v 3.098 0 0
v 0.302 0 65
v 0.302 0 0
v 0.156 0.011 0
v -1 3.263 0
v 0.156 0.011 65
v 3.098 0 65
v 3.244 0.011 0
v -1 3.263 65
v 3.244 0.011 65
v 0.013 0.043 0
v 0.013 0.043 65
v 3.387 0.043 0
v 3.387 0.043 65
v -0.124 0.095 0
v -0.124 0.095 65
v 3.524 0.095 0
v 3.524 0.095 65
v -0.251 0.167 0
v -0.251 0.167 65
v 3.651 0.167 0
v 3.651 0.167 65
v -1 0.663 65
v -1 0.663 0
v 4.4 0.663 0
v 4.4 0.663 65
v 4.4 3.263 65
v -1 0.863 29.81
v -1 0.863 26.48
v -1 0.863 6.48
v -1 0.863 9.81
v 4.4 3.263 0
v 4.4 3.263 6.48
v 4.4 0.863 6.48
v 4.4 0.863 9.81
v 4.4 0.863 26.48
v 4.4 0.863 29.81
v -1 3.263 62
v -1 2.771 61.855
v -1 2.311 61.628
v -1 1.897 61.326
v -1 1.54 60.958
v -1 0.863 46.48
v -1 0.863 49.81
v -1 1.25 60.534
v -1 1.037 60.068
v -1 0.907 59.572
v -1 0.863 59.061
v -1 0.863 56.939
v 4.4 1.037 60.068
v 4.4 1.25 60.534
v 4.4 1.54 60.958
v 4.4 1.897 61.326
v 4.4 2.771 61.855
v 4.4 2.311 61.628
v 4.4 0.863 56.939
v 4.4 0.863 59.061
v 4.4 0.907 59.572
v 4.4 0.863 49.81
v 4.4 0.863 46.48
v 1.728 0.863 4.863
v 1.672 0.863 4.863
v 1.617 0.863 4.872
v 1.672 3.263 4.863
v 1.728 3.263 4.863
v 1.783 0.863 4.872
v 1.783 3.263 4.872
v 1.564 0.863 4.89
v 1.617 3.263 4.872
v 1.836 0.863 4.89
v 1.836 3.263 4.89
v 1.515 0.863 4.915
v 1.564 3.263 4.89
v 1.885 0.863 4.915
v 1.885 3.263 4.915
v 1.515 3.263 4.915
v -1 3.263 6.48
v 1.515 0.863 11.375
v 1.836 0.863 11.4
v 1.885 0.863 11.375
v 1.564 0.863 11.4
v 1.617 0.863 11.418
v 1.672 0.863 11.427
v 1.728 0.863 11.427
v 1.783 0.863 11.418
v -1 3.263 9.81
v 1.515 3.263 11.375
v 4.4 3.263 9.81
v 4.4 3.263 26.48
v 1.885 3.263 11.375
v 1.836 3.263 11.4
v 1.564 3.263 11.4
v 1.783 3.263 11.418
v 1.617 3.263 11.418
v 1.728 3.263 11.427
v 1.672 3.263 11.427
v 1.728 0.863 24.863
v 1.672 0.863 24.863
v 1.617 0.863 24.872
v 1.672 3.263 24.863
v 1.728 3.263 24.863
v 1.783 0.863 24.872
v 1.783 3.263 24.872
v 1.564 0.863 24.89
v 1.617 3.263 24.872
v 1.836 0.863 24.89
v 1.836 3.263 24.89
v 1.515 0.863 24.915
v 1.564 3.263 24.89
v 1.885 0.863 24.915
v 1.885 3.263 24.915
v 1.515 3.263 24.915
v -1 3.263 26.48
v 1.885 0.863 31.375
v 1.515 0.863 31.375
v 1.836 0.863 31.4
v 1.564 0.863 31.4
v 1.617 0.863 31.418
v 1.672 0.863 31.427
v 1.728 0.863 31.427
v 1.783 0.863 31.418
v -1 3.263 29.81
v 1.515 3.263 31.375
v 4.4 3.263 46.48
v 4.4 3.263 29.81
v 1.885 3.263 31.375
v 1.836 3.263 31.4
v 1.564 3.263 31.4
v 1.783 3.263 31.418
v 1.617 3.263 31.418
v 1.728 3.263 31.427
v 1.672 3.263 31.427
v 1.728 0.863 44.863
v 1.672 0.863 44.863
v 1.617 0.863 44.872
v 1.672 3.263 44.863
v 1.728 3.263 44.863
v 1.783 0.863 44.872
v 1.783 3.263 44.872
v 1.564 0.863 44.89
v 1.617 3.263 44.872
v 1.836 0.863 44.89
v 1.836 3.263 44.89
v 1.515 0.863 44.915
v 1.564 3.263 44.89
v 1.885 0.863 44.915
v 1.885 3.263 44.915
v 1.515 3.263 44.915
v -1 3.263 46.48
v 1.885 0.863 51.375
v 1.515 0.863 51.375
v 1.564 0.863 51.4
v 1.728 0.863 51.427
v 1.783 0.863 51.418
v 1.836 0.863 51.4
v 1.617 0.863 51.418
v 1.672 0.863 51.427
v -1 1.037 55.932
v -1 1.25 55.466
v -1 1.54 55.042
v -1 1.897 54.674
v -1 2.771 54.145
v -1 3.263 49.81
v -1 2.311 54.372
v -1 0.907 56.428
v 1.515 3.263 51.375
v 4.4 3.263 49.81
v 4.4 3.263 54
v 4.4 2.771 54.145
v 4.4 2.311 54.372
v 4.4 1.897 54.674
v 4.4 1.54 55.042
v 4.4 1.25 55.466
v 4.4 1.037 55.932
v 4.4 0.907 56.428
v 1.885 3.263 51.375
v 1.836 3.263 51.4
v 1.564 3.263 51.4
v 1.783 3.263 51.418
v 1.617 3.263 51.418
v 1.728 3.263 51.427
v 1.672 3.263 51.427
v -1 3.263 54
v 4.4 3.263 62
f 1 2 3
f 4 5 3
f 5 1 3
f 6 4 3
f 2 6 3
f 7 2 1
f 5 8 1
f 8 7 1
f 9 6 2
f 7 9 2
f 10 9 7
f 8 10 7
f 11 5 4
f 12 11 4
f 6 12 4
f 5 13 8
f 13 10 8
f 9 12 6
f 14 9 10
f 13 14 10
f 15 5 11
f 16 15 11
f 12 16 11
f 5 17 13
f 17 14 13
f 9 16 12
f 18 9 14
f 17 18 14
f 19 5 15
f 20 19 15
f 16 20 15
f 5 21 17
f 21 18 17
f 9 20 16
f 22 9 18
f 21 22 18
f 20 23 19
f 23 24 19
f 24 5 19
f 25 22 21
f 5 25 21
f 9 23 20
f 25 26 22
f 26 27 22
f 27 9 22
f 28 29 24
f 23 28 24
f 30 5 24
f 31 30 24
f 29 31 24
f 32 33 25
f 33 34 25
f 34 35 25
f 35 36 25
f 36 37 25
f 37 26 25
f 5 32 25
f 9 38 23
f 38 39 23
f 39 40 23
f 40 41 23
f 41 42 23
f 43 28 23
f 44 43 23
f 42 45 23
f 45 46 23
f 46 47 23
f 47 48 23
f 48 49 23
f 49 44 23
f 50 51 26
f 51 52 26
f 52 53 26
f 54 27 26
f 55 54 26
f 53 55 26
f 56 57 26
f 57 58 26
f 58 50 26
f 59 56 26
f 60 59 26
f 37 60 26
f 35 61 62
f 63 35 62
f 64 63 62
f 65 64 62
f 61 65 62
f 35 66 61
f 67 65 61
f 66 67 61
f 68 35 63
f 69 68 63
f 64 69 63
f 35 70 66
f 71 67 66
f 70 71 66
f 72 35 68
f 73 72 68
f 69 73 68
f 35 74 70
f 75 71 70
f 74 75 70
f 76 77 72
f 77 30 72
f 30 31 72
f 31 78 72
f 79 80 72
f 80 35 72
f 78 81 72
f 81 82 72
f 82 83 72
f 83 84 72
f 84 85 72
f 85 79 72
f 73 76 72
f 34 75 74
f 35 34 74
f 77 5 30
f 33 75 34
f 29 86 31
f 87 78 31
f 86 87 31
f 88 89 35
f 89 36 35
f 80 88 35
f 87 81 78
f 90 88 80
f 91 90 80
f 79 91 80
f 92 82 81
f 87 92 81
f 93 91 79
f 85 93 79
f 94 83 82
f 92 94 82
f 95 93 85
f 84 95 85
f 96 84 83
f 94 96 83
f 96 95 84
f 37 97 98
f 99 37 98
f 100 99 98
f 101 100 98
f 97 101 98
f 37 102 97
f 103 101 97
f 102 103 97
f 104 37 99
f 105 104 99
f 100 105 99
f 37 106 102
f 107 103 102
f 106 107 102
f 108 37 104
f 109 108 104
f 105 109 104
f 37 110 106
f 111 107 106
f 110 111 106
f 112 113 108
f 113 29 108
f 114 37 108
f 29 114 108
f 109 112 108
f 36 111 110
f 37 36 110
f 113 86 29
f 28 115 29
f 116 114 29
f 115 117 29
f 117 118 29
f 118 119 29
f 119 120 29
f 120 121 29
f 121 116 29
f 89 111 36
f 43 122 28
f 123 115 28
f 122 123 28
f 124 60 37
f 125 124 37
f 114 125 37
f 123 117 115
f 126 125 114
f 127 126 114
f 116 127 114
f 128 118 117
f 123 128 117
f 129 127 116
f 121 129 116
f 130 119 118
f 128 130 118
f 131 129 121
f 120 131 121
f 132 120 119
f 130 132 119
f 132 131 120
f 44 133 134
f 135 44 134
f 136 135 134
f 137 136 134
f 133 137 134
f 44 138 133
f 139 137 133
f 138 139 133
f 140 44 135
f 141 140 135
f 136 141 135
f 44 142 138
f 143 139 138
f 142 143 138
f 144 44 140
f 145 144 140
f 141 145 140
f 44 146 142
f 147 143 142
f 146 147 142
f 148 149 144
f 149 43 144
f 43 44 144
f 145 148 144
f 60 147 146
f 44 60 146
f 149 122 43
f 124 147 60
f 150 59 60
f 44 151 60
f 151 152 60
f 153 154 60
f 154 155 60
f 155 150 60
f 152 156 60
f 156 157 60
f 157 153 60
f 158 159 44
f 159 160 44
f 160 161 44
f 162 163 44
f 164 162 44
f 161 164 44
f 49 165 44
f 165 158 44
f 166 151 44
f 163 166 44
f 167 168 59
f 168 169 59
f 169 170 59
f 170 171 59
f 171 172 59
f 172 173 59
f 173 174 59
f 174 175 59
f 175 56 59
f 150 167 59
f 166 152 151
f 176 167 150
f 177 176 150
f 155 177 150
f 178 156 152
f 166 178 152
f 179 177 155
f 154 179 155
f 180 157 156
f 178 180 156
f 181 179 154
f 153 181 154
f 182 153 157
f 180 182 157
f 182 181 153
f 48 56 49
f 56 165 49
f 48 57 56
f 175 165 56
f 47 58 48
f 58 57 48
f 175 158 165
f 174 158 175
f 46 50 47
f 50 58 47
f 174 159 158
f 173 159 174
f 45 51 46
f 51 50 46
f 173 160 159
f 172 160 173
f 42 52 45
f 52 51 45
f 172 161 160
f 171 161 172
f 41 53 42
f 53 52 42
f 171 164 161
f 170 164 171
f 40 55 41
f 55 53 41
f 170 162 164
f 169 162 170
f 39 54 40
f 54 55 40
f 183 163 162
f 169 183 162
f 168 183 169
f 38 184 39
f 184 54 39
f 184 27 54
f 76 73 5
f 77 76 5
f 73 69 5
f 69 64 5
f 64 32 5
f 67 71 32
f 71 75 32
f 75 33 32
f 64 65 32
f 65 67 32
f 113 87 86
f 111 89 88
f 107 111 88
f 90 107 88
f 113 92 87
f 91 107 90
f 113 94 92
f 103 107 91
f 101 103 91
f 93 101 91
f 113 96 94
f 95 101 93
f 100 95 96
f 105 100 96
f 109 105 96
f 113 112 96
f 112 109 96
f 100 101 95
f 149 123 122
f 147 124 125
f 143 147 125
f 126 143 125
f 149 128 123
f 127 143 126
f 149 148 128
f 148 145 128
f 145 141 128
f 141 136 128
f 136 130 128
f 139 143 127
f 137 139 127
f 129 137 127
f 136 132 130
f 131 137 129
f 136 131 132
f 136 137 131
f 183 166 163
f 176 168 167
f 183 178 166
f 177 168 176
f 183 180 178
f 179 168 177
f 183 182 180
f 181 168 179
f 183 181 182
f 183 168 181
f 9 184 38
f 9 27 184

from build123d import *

# Parameters (mm, degrees)
BOSS_EXTRUDE1_DEPTH = 65
FILLET3_R           = 1
FILLET4_R           = 1
CUT_EXTRUDE1_DEPTH  = 2.4
LPATTERN1_COUNT     = 3
LPATTERN1_PITCH     = 20
SKETCH3_W           = 5.4
SKETCH3_H           = 8
CUT_EXTRUDE2_DEPTH  = 2.4
FILLET5_R           = 3
FILLET6_R           = 0.35


with BuildPart() as part:
    # Sketch1 → Boss-Extrude1 (new body)
    with BuildSketch(Plane.XY):
        Polygon((0, 0), (3.4, 0), (4.4, 0.663324958), (4.4, 3.263324958), (-1, 3.263324958), (-1, 0.663324958), align=None)
    extrude(amount=BOSS_EXTRUDE1_DEPTH)

    # Fillet3
    fillet3_edges = [part.edges().sort_by_distance(p)[0] for p in [
        (3.4, 0, 32.5),
    ]]
    fillet(fillet3_edges, radius=FILLET3_R)

    # Fillet4
    fillet4_edges = [part.edges().sort_by_distance(p)[0] for p in [
        (0, 0, 32.5),
    ]]
    fillet(fillet4_edges, radius=FILLET4_R)

    # Sketch2 → Cut-Extrude1 (cut)
    with BuildSketch(Plane(origin=(0, 3.263324958, 0), x_dir=(1, 0, 0), z_dir=(0, 1, 0))):
        Polygon((4.4, -9.81), (4.4, -6.48), (1.7, -4.8), (-1, -6.48), (-1, -9.81), (1.7, -11.49), align=None)
    cut_extrude1 = extrude(amount=-CUT_EXTRUDE1_DEPTH, mode=Mode.SUBTRACT)

    # LPattern1: Cut-Extrude1 ×3
    with Locations(*[(0, 0, i * LPATTERN1_PITCH) for i in range(1, LPATTERN1_COUNT)]):
        add(cut_extrude1, mode=Mode.SUBTRACT)

    # Sketch3 → Cut-Extrude2 (cut)
    with BuildSketch(Plane(origin=(0, 3.263324958, 0), x_dir=(1, 0, 0), z_dir=(0, 1, 0))):
        with Locations((1.7, -58)):
            Rectangle(SKETCH3_W, SKETCH3_H)
    extrude(amount=-CUT_EXTRUDE2_DEPTH, mode=Mode.SUBTRACT)

    # Fillet5
    # the kernel refuses this fillet: 3 mm, written as the material it adds along each edge
    with BuildSketch(Plane(origin=(4.4, 0.863324958, 54), x_dir=(0, 0, 1), z_dir=(-1, 0, 0))) as fillet5_piece_1:
        with BuildLine():
            CenterArc((2.939387691, 3), FILLET5_R, 191.536959033, 78.463040967)
            Line((0, 2.4), (-0.058787754, 2.388))
            ThreePointArc((-0.058787754, 2.388), (-0.06, 1.2), (-0.06, 0))
            Line((-0.06, 0), (0, -0.06))
            Line((0, -0.06), (2.939387691, -0.06))
            Line((2.939387691, -0.06), (2.939387691, 0))
        make_face()
    extrude(amount=5.4)
    with BuildSketch(Plane(origin=(-1, 0.863324958, 62), x_dir=(0, 1.0, -1.5483910450100627e-12), z_dir=(1, 0, 0))) as fillet5_piece_2:
        with BuildLine():
            CenterArc((3, -2.939387691), FILLET5_R, 101.536959033, 78.463040967)
            Line((0, -2.939387691), (-0.06, -2.939387691))
            Line((-0.06, -2.939387691), (-0.06, 0))
            Line((-0.06, 0), (0, 0.06))
            ThreePointArc((0, 0.06), (1.2, 0.06), (2.388, 0.058787754))
            Line((2.388, 0.058787754), (2.4, 0))
        make_face()
    extrude(amount=5.4)

    # Fillet6
    fillet6_edges = [part.edges().sort_by_distance(p)[0] for p in [
        (1.7, 2.063324958, 11.49),
        (1.7, 2.063324958, 4.8),
        (1.7, 2.063324958, 31.49),
        (1.7, 2.063324958, 24.8),
        (1.7, 2.063324958, 51.49),
        (1.7, 2.063324958, 44.8),
    ]]
    fillet(fillet6_edges, radius=FILLET6_R)


solid = part.part
